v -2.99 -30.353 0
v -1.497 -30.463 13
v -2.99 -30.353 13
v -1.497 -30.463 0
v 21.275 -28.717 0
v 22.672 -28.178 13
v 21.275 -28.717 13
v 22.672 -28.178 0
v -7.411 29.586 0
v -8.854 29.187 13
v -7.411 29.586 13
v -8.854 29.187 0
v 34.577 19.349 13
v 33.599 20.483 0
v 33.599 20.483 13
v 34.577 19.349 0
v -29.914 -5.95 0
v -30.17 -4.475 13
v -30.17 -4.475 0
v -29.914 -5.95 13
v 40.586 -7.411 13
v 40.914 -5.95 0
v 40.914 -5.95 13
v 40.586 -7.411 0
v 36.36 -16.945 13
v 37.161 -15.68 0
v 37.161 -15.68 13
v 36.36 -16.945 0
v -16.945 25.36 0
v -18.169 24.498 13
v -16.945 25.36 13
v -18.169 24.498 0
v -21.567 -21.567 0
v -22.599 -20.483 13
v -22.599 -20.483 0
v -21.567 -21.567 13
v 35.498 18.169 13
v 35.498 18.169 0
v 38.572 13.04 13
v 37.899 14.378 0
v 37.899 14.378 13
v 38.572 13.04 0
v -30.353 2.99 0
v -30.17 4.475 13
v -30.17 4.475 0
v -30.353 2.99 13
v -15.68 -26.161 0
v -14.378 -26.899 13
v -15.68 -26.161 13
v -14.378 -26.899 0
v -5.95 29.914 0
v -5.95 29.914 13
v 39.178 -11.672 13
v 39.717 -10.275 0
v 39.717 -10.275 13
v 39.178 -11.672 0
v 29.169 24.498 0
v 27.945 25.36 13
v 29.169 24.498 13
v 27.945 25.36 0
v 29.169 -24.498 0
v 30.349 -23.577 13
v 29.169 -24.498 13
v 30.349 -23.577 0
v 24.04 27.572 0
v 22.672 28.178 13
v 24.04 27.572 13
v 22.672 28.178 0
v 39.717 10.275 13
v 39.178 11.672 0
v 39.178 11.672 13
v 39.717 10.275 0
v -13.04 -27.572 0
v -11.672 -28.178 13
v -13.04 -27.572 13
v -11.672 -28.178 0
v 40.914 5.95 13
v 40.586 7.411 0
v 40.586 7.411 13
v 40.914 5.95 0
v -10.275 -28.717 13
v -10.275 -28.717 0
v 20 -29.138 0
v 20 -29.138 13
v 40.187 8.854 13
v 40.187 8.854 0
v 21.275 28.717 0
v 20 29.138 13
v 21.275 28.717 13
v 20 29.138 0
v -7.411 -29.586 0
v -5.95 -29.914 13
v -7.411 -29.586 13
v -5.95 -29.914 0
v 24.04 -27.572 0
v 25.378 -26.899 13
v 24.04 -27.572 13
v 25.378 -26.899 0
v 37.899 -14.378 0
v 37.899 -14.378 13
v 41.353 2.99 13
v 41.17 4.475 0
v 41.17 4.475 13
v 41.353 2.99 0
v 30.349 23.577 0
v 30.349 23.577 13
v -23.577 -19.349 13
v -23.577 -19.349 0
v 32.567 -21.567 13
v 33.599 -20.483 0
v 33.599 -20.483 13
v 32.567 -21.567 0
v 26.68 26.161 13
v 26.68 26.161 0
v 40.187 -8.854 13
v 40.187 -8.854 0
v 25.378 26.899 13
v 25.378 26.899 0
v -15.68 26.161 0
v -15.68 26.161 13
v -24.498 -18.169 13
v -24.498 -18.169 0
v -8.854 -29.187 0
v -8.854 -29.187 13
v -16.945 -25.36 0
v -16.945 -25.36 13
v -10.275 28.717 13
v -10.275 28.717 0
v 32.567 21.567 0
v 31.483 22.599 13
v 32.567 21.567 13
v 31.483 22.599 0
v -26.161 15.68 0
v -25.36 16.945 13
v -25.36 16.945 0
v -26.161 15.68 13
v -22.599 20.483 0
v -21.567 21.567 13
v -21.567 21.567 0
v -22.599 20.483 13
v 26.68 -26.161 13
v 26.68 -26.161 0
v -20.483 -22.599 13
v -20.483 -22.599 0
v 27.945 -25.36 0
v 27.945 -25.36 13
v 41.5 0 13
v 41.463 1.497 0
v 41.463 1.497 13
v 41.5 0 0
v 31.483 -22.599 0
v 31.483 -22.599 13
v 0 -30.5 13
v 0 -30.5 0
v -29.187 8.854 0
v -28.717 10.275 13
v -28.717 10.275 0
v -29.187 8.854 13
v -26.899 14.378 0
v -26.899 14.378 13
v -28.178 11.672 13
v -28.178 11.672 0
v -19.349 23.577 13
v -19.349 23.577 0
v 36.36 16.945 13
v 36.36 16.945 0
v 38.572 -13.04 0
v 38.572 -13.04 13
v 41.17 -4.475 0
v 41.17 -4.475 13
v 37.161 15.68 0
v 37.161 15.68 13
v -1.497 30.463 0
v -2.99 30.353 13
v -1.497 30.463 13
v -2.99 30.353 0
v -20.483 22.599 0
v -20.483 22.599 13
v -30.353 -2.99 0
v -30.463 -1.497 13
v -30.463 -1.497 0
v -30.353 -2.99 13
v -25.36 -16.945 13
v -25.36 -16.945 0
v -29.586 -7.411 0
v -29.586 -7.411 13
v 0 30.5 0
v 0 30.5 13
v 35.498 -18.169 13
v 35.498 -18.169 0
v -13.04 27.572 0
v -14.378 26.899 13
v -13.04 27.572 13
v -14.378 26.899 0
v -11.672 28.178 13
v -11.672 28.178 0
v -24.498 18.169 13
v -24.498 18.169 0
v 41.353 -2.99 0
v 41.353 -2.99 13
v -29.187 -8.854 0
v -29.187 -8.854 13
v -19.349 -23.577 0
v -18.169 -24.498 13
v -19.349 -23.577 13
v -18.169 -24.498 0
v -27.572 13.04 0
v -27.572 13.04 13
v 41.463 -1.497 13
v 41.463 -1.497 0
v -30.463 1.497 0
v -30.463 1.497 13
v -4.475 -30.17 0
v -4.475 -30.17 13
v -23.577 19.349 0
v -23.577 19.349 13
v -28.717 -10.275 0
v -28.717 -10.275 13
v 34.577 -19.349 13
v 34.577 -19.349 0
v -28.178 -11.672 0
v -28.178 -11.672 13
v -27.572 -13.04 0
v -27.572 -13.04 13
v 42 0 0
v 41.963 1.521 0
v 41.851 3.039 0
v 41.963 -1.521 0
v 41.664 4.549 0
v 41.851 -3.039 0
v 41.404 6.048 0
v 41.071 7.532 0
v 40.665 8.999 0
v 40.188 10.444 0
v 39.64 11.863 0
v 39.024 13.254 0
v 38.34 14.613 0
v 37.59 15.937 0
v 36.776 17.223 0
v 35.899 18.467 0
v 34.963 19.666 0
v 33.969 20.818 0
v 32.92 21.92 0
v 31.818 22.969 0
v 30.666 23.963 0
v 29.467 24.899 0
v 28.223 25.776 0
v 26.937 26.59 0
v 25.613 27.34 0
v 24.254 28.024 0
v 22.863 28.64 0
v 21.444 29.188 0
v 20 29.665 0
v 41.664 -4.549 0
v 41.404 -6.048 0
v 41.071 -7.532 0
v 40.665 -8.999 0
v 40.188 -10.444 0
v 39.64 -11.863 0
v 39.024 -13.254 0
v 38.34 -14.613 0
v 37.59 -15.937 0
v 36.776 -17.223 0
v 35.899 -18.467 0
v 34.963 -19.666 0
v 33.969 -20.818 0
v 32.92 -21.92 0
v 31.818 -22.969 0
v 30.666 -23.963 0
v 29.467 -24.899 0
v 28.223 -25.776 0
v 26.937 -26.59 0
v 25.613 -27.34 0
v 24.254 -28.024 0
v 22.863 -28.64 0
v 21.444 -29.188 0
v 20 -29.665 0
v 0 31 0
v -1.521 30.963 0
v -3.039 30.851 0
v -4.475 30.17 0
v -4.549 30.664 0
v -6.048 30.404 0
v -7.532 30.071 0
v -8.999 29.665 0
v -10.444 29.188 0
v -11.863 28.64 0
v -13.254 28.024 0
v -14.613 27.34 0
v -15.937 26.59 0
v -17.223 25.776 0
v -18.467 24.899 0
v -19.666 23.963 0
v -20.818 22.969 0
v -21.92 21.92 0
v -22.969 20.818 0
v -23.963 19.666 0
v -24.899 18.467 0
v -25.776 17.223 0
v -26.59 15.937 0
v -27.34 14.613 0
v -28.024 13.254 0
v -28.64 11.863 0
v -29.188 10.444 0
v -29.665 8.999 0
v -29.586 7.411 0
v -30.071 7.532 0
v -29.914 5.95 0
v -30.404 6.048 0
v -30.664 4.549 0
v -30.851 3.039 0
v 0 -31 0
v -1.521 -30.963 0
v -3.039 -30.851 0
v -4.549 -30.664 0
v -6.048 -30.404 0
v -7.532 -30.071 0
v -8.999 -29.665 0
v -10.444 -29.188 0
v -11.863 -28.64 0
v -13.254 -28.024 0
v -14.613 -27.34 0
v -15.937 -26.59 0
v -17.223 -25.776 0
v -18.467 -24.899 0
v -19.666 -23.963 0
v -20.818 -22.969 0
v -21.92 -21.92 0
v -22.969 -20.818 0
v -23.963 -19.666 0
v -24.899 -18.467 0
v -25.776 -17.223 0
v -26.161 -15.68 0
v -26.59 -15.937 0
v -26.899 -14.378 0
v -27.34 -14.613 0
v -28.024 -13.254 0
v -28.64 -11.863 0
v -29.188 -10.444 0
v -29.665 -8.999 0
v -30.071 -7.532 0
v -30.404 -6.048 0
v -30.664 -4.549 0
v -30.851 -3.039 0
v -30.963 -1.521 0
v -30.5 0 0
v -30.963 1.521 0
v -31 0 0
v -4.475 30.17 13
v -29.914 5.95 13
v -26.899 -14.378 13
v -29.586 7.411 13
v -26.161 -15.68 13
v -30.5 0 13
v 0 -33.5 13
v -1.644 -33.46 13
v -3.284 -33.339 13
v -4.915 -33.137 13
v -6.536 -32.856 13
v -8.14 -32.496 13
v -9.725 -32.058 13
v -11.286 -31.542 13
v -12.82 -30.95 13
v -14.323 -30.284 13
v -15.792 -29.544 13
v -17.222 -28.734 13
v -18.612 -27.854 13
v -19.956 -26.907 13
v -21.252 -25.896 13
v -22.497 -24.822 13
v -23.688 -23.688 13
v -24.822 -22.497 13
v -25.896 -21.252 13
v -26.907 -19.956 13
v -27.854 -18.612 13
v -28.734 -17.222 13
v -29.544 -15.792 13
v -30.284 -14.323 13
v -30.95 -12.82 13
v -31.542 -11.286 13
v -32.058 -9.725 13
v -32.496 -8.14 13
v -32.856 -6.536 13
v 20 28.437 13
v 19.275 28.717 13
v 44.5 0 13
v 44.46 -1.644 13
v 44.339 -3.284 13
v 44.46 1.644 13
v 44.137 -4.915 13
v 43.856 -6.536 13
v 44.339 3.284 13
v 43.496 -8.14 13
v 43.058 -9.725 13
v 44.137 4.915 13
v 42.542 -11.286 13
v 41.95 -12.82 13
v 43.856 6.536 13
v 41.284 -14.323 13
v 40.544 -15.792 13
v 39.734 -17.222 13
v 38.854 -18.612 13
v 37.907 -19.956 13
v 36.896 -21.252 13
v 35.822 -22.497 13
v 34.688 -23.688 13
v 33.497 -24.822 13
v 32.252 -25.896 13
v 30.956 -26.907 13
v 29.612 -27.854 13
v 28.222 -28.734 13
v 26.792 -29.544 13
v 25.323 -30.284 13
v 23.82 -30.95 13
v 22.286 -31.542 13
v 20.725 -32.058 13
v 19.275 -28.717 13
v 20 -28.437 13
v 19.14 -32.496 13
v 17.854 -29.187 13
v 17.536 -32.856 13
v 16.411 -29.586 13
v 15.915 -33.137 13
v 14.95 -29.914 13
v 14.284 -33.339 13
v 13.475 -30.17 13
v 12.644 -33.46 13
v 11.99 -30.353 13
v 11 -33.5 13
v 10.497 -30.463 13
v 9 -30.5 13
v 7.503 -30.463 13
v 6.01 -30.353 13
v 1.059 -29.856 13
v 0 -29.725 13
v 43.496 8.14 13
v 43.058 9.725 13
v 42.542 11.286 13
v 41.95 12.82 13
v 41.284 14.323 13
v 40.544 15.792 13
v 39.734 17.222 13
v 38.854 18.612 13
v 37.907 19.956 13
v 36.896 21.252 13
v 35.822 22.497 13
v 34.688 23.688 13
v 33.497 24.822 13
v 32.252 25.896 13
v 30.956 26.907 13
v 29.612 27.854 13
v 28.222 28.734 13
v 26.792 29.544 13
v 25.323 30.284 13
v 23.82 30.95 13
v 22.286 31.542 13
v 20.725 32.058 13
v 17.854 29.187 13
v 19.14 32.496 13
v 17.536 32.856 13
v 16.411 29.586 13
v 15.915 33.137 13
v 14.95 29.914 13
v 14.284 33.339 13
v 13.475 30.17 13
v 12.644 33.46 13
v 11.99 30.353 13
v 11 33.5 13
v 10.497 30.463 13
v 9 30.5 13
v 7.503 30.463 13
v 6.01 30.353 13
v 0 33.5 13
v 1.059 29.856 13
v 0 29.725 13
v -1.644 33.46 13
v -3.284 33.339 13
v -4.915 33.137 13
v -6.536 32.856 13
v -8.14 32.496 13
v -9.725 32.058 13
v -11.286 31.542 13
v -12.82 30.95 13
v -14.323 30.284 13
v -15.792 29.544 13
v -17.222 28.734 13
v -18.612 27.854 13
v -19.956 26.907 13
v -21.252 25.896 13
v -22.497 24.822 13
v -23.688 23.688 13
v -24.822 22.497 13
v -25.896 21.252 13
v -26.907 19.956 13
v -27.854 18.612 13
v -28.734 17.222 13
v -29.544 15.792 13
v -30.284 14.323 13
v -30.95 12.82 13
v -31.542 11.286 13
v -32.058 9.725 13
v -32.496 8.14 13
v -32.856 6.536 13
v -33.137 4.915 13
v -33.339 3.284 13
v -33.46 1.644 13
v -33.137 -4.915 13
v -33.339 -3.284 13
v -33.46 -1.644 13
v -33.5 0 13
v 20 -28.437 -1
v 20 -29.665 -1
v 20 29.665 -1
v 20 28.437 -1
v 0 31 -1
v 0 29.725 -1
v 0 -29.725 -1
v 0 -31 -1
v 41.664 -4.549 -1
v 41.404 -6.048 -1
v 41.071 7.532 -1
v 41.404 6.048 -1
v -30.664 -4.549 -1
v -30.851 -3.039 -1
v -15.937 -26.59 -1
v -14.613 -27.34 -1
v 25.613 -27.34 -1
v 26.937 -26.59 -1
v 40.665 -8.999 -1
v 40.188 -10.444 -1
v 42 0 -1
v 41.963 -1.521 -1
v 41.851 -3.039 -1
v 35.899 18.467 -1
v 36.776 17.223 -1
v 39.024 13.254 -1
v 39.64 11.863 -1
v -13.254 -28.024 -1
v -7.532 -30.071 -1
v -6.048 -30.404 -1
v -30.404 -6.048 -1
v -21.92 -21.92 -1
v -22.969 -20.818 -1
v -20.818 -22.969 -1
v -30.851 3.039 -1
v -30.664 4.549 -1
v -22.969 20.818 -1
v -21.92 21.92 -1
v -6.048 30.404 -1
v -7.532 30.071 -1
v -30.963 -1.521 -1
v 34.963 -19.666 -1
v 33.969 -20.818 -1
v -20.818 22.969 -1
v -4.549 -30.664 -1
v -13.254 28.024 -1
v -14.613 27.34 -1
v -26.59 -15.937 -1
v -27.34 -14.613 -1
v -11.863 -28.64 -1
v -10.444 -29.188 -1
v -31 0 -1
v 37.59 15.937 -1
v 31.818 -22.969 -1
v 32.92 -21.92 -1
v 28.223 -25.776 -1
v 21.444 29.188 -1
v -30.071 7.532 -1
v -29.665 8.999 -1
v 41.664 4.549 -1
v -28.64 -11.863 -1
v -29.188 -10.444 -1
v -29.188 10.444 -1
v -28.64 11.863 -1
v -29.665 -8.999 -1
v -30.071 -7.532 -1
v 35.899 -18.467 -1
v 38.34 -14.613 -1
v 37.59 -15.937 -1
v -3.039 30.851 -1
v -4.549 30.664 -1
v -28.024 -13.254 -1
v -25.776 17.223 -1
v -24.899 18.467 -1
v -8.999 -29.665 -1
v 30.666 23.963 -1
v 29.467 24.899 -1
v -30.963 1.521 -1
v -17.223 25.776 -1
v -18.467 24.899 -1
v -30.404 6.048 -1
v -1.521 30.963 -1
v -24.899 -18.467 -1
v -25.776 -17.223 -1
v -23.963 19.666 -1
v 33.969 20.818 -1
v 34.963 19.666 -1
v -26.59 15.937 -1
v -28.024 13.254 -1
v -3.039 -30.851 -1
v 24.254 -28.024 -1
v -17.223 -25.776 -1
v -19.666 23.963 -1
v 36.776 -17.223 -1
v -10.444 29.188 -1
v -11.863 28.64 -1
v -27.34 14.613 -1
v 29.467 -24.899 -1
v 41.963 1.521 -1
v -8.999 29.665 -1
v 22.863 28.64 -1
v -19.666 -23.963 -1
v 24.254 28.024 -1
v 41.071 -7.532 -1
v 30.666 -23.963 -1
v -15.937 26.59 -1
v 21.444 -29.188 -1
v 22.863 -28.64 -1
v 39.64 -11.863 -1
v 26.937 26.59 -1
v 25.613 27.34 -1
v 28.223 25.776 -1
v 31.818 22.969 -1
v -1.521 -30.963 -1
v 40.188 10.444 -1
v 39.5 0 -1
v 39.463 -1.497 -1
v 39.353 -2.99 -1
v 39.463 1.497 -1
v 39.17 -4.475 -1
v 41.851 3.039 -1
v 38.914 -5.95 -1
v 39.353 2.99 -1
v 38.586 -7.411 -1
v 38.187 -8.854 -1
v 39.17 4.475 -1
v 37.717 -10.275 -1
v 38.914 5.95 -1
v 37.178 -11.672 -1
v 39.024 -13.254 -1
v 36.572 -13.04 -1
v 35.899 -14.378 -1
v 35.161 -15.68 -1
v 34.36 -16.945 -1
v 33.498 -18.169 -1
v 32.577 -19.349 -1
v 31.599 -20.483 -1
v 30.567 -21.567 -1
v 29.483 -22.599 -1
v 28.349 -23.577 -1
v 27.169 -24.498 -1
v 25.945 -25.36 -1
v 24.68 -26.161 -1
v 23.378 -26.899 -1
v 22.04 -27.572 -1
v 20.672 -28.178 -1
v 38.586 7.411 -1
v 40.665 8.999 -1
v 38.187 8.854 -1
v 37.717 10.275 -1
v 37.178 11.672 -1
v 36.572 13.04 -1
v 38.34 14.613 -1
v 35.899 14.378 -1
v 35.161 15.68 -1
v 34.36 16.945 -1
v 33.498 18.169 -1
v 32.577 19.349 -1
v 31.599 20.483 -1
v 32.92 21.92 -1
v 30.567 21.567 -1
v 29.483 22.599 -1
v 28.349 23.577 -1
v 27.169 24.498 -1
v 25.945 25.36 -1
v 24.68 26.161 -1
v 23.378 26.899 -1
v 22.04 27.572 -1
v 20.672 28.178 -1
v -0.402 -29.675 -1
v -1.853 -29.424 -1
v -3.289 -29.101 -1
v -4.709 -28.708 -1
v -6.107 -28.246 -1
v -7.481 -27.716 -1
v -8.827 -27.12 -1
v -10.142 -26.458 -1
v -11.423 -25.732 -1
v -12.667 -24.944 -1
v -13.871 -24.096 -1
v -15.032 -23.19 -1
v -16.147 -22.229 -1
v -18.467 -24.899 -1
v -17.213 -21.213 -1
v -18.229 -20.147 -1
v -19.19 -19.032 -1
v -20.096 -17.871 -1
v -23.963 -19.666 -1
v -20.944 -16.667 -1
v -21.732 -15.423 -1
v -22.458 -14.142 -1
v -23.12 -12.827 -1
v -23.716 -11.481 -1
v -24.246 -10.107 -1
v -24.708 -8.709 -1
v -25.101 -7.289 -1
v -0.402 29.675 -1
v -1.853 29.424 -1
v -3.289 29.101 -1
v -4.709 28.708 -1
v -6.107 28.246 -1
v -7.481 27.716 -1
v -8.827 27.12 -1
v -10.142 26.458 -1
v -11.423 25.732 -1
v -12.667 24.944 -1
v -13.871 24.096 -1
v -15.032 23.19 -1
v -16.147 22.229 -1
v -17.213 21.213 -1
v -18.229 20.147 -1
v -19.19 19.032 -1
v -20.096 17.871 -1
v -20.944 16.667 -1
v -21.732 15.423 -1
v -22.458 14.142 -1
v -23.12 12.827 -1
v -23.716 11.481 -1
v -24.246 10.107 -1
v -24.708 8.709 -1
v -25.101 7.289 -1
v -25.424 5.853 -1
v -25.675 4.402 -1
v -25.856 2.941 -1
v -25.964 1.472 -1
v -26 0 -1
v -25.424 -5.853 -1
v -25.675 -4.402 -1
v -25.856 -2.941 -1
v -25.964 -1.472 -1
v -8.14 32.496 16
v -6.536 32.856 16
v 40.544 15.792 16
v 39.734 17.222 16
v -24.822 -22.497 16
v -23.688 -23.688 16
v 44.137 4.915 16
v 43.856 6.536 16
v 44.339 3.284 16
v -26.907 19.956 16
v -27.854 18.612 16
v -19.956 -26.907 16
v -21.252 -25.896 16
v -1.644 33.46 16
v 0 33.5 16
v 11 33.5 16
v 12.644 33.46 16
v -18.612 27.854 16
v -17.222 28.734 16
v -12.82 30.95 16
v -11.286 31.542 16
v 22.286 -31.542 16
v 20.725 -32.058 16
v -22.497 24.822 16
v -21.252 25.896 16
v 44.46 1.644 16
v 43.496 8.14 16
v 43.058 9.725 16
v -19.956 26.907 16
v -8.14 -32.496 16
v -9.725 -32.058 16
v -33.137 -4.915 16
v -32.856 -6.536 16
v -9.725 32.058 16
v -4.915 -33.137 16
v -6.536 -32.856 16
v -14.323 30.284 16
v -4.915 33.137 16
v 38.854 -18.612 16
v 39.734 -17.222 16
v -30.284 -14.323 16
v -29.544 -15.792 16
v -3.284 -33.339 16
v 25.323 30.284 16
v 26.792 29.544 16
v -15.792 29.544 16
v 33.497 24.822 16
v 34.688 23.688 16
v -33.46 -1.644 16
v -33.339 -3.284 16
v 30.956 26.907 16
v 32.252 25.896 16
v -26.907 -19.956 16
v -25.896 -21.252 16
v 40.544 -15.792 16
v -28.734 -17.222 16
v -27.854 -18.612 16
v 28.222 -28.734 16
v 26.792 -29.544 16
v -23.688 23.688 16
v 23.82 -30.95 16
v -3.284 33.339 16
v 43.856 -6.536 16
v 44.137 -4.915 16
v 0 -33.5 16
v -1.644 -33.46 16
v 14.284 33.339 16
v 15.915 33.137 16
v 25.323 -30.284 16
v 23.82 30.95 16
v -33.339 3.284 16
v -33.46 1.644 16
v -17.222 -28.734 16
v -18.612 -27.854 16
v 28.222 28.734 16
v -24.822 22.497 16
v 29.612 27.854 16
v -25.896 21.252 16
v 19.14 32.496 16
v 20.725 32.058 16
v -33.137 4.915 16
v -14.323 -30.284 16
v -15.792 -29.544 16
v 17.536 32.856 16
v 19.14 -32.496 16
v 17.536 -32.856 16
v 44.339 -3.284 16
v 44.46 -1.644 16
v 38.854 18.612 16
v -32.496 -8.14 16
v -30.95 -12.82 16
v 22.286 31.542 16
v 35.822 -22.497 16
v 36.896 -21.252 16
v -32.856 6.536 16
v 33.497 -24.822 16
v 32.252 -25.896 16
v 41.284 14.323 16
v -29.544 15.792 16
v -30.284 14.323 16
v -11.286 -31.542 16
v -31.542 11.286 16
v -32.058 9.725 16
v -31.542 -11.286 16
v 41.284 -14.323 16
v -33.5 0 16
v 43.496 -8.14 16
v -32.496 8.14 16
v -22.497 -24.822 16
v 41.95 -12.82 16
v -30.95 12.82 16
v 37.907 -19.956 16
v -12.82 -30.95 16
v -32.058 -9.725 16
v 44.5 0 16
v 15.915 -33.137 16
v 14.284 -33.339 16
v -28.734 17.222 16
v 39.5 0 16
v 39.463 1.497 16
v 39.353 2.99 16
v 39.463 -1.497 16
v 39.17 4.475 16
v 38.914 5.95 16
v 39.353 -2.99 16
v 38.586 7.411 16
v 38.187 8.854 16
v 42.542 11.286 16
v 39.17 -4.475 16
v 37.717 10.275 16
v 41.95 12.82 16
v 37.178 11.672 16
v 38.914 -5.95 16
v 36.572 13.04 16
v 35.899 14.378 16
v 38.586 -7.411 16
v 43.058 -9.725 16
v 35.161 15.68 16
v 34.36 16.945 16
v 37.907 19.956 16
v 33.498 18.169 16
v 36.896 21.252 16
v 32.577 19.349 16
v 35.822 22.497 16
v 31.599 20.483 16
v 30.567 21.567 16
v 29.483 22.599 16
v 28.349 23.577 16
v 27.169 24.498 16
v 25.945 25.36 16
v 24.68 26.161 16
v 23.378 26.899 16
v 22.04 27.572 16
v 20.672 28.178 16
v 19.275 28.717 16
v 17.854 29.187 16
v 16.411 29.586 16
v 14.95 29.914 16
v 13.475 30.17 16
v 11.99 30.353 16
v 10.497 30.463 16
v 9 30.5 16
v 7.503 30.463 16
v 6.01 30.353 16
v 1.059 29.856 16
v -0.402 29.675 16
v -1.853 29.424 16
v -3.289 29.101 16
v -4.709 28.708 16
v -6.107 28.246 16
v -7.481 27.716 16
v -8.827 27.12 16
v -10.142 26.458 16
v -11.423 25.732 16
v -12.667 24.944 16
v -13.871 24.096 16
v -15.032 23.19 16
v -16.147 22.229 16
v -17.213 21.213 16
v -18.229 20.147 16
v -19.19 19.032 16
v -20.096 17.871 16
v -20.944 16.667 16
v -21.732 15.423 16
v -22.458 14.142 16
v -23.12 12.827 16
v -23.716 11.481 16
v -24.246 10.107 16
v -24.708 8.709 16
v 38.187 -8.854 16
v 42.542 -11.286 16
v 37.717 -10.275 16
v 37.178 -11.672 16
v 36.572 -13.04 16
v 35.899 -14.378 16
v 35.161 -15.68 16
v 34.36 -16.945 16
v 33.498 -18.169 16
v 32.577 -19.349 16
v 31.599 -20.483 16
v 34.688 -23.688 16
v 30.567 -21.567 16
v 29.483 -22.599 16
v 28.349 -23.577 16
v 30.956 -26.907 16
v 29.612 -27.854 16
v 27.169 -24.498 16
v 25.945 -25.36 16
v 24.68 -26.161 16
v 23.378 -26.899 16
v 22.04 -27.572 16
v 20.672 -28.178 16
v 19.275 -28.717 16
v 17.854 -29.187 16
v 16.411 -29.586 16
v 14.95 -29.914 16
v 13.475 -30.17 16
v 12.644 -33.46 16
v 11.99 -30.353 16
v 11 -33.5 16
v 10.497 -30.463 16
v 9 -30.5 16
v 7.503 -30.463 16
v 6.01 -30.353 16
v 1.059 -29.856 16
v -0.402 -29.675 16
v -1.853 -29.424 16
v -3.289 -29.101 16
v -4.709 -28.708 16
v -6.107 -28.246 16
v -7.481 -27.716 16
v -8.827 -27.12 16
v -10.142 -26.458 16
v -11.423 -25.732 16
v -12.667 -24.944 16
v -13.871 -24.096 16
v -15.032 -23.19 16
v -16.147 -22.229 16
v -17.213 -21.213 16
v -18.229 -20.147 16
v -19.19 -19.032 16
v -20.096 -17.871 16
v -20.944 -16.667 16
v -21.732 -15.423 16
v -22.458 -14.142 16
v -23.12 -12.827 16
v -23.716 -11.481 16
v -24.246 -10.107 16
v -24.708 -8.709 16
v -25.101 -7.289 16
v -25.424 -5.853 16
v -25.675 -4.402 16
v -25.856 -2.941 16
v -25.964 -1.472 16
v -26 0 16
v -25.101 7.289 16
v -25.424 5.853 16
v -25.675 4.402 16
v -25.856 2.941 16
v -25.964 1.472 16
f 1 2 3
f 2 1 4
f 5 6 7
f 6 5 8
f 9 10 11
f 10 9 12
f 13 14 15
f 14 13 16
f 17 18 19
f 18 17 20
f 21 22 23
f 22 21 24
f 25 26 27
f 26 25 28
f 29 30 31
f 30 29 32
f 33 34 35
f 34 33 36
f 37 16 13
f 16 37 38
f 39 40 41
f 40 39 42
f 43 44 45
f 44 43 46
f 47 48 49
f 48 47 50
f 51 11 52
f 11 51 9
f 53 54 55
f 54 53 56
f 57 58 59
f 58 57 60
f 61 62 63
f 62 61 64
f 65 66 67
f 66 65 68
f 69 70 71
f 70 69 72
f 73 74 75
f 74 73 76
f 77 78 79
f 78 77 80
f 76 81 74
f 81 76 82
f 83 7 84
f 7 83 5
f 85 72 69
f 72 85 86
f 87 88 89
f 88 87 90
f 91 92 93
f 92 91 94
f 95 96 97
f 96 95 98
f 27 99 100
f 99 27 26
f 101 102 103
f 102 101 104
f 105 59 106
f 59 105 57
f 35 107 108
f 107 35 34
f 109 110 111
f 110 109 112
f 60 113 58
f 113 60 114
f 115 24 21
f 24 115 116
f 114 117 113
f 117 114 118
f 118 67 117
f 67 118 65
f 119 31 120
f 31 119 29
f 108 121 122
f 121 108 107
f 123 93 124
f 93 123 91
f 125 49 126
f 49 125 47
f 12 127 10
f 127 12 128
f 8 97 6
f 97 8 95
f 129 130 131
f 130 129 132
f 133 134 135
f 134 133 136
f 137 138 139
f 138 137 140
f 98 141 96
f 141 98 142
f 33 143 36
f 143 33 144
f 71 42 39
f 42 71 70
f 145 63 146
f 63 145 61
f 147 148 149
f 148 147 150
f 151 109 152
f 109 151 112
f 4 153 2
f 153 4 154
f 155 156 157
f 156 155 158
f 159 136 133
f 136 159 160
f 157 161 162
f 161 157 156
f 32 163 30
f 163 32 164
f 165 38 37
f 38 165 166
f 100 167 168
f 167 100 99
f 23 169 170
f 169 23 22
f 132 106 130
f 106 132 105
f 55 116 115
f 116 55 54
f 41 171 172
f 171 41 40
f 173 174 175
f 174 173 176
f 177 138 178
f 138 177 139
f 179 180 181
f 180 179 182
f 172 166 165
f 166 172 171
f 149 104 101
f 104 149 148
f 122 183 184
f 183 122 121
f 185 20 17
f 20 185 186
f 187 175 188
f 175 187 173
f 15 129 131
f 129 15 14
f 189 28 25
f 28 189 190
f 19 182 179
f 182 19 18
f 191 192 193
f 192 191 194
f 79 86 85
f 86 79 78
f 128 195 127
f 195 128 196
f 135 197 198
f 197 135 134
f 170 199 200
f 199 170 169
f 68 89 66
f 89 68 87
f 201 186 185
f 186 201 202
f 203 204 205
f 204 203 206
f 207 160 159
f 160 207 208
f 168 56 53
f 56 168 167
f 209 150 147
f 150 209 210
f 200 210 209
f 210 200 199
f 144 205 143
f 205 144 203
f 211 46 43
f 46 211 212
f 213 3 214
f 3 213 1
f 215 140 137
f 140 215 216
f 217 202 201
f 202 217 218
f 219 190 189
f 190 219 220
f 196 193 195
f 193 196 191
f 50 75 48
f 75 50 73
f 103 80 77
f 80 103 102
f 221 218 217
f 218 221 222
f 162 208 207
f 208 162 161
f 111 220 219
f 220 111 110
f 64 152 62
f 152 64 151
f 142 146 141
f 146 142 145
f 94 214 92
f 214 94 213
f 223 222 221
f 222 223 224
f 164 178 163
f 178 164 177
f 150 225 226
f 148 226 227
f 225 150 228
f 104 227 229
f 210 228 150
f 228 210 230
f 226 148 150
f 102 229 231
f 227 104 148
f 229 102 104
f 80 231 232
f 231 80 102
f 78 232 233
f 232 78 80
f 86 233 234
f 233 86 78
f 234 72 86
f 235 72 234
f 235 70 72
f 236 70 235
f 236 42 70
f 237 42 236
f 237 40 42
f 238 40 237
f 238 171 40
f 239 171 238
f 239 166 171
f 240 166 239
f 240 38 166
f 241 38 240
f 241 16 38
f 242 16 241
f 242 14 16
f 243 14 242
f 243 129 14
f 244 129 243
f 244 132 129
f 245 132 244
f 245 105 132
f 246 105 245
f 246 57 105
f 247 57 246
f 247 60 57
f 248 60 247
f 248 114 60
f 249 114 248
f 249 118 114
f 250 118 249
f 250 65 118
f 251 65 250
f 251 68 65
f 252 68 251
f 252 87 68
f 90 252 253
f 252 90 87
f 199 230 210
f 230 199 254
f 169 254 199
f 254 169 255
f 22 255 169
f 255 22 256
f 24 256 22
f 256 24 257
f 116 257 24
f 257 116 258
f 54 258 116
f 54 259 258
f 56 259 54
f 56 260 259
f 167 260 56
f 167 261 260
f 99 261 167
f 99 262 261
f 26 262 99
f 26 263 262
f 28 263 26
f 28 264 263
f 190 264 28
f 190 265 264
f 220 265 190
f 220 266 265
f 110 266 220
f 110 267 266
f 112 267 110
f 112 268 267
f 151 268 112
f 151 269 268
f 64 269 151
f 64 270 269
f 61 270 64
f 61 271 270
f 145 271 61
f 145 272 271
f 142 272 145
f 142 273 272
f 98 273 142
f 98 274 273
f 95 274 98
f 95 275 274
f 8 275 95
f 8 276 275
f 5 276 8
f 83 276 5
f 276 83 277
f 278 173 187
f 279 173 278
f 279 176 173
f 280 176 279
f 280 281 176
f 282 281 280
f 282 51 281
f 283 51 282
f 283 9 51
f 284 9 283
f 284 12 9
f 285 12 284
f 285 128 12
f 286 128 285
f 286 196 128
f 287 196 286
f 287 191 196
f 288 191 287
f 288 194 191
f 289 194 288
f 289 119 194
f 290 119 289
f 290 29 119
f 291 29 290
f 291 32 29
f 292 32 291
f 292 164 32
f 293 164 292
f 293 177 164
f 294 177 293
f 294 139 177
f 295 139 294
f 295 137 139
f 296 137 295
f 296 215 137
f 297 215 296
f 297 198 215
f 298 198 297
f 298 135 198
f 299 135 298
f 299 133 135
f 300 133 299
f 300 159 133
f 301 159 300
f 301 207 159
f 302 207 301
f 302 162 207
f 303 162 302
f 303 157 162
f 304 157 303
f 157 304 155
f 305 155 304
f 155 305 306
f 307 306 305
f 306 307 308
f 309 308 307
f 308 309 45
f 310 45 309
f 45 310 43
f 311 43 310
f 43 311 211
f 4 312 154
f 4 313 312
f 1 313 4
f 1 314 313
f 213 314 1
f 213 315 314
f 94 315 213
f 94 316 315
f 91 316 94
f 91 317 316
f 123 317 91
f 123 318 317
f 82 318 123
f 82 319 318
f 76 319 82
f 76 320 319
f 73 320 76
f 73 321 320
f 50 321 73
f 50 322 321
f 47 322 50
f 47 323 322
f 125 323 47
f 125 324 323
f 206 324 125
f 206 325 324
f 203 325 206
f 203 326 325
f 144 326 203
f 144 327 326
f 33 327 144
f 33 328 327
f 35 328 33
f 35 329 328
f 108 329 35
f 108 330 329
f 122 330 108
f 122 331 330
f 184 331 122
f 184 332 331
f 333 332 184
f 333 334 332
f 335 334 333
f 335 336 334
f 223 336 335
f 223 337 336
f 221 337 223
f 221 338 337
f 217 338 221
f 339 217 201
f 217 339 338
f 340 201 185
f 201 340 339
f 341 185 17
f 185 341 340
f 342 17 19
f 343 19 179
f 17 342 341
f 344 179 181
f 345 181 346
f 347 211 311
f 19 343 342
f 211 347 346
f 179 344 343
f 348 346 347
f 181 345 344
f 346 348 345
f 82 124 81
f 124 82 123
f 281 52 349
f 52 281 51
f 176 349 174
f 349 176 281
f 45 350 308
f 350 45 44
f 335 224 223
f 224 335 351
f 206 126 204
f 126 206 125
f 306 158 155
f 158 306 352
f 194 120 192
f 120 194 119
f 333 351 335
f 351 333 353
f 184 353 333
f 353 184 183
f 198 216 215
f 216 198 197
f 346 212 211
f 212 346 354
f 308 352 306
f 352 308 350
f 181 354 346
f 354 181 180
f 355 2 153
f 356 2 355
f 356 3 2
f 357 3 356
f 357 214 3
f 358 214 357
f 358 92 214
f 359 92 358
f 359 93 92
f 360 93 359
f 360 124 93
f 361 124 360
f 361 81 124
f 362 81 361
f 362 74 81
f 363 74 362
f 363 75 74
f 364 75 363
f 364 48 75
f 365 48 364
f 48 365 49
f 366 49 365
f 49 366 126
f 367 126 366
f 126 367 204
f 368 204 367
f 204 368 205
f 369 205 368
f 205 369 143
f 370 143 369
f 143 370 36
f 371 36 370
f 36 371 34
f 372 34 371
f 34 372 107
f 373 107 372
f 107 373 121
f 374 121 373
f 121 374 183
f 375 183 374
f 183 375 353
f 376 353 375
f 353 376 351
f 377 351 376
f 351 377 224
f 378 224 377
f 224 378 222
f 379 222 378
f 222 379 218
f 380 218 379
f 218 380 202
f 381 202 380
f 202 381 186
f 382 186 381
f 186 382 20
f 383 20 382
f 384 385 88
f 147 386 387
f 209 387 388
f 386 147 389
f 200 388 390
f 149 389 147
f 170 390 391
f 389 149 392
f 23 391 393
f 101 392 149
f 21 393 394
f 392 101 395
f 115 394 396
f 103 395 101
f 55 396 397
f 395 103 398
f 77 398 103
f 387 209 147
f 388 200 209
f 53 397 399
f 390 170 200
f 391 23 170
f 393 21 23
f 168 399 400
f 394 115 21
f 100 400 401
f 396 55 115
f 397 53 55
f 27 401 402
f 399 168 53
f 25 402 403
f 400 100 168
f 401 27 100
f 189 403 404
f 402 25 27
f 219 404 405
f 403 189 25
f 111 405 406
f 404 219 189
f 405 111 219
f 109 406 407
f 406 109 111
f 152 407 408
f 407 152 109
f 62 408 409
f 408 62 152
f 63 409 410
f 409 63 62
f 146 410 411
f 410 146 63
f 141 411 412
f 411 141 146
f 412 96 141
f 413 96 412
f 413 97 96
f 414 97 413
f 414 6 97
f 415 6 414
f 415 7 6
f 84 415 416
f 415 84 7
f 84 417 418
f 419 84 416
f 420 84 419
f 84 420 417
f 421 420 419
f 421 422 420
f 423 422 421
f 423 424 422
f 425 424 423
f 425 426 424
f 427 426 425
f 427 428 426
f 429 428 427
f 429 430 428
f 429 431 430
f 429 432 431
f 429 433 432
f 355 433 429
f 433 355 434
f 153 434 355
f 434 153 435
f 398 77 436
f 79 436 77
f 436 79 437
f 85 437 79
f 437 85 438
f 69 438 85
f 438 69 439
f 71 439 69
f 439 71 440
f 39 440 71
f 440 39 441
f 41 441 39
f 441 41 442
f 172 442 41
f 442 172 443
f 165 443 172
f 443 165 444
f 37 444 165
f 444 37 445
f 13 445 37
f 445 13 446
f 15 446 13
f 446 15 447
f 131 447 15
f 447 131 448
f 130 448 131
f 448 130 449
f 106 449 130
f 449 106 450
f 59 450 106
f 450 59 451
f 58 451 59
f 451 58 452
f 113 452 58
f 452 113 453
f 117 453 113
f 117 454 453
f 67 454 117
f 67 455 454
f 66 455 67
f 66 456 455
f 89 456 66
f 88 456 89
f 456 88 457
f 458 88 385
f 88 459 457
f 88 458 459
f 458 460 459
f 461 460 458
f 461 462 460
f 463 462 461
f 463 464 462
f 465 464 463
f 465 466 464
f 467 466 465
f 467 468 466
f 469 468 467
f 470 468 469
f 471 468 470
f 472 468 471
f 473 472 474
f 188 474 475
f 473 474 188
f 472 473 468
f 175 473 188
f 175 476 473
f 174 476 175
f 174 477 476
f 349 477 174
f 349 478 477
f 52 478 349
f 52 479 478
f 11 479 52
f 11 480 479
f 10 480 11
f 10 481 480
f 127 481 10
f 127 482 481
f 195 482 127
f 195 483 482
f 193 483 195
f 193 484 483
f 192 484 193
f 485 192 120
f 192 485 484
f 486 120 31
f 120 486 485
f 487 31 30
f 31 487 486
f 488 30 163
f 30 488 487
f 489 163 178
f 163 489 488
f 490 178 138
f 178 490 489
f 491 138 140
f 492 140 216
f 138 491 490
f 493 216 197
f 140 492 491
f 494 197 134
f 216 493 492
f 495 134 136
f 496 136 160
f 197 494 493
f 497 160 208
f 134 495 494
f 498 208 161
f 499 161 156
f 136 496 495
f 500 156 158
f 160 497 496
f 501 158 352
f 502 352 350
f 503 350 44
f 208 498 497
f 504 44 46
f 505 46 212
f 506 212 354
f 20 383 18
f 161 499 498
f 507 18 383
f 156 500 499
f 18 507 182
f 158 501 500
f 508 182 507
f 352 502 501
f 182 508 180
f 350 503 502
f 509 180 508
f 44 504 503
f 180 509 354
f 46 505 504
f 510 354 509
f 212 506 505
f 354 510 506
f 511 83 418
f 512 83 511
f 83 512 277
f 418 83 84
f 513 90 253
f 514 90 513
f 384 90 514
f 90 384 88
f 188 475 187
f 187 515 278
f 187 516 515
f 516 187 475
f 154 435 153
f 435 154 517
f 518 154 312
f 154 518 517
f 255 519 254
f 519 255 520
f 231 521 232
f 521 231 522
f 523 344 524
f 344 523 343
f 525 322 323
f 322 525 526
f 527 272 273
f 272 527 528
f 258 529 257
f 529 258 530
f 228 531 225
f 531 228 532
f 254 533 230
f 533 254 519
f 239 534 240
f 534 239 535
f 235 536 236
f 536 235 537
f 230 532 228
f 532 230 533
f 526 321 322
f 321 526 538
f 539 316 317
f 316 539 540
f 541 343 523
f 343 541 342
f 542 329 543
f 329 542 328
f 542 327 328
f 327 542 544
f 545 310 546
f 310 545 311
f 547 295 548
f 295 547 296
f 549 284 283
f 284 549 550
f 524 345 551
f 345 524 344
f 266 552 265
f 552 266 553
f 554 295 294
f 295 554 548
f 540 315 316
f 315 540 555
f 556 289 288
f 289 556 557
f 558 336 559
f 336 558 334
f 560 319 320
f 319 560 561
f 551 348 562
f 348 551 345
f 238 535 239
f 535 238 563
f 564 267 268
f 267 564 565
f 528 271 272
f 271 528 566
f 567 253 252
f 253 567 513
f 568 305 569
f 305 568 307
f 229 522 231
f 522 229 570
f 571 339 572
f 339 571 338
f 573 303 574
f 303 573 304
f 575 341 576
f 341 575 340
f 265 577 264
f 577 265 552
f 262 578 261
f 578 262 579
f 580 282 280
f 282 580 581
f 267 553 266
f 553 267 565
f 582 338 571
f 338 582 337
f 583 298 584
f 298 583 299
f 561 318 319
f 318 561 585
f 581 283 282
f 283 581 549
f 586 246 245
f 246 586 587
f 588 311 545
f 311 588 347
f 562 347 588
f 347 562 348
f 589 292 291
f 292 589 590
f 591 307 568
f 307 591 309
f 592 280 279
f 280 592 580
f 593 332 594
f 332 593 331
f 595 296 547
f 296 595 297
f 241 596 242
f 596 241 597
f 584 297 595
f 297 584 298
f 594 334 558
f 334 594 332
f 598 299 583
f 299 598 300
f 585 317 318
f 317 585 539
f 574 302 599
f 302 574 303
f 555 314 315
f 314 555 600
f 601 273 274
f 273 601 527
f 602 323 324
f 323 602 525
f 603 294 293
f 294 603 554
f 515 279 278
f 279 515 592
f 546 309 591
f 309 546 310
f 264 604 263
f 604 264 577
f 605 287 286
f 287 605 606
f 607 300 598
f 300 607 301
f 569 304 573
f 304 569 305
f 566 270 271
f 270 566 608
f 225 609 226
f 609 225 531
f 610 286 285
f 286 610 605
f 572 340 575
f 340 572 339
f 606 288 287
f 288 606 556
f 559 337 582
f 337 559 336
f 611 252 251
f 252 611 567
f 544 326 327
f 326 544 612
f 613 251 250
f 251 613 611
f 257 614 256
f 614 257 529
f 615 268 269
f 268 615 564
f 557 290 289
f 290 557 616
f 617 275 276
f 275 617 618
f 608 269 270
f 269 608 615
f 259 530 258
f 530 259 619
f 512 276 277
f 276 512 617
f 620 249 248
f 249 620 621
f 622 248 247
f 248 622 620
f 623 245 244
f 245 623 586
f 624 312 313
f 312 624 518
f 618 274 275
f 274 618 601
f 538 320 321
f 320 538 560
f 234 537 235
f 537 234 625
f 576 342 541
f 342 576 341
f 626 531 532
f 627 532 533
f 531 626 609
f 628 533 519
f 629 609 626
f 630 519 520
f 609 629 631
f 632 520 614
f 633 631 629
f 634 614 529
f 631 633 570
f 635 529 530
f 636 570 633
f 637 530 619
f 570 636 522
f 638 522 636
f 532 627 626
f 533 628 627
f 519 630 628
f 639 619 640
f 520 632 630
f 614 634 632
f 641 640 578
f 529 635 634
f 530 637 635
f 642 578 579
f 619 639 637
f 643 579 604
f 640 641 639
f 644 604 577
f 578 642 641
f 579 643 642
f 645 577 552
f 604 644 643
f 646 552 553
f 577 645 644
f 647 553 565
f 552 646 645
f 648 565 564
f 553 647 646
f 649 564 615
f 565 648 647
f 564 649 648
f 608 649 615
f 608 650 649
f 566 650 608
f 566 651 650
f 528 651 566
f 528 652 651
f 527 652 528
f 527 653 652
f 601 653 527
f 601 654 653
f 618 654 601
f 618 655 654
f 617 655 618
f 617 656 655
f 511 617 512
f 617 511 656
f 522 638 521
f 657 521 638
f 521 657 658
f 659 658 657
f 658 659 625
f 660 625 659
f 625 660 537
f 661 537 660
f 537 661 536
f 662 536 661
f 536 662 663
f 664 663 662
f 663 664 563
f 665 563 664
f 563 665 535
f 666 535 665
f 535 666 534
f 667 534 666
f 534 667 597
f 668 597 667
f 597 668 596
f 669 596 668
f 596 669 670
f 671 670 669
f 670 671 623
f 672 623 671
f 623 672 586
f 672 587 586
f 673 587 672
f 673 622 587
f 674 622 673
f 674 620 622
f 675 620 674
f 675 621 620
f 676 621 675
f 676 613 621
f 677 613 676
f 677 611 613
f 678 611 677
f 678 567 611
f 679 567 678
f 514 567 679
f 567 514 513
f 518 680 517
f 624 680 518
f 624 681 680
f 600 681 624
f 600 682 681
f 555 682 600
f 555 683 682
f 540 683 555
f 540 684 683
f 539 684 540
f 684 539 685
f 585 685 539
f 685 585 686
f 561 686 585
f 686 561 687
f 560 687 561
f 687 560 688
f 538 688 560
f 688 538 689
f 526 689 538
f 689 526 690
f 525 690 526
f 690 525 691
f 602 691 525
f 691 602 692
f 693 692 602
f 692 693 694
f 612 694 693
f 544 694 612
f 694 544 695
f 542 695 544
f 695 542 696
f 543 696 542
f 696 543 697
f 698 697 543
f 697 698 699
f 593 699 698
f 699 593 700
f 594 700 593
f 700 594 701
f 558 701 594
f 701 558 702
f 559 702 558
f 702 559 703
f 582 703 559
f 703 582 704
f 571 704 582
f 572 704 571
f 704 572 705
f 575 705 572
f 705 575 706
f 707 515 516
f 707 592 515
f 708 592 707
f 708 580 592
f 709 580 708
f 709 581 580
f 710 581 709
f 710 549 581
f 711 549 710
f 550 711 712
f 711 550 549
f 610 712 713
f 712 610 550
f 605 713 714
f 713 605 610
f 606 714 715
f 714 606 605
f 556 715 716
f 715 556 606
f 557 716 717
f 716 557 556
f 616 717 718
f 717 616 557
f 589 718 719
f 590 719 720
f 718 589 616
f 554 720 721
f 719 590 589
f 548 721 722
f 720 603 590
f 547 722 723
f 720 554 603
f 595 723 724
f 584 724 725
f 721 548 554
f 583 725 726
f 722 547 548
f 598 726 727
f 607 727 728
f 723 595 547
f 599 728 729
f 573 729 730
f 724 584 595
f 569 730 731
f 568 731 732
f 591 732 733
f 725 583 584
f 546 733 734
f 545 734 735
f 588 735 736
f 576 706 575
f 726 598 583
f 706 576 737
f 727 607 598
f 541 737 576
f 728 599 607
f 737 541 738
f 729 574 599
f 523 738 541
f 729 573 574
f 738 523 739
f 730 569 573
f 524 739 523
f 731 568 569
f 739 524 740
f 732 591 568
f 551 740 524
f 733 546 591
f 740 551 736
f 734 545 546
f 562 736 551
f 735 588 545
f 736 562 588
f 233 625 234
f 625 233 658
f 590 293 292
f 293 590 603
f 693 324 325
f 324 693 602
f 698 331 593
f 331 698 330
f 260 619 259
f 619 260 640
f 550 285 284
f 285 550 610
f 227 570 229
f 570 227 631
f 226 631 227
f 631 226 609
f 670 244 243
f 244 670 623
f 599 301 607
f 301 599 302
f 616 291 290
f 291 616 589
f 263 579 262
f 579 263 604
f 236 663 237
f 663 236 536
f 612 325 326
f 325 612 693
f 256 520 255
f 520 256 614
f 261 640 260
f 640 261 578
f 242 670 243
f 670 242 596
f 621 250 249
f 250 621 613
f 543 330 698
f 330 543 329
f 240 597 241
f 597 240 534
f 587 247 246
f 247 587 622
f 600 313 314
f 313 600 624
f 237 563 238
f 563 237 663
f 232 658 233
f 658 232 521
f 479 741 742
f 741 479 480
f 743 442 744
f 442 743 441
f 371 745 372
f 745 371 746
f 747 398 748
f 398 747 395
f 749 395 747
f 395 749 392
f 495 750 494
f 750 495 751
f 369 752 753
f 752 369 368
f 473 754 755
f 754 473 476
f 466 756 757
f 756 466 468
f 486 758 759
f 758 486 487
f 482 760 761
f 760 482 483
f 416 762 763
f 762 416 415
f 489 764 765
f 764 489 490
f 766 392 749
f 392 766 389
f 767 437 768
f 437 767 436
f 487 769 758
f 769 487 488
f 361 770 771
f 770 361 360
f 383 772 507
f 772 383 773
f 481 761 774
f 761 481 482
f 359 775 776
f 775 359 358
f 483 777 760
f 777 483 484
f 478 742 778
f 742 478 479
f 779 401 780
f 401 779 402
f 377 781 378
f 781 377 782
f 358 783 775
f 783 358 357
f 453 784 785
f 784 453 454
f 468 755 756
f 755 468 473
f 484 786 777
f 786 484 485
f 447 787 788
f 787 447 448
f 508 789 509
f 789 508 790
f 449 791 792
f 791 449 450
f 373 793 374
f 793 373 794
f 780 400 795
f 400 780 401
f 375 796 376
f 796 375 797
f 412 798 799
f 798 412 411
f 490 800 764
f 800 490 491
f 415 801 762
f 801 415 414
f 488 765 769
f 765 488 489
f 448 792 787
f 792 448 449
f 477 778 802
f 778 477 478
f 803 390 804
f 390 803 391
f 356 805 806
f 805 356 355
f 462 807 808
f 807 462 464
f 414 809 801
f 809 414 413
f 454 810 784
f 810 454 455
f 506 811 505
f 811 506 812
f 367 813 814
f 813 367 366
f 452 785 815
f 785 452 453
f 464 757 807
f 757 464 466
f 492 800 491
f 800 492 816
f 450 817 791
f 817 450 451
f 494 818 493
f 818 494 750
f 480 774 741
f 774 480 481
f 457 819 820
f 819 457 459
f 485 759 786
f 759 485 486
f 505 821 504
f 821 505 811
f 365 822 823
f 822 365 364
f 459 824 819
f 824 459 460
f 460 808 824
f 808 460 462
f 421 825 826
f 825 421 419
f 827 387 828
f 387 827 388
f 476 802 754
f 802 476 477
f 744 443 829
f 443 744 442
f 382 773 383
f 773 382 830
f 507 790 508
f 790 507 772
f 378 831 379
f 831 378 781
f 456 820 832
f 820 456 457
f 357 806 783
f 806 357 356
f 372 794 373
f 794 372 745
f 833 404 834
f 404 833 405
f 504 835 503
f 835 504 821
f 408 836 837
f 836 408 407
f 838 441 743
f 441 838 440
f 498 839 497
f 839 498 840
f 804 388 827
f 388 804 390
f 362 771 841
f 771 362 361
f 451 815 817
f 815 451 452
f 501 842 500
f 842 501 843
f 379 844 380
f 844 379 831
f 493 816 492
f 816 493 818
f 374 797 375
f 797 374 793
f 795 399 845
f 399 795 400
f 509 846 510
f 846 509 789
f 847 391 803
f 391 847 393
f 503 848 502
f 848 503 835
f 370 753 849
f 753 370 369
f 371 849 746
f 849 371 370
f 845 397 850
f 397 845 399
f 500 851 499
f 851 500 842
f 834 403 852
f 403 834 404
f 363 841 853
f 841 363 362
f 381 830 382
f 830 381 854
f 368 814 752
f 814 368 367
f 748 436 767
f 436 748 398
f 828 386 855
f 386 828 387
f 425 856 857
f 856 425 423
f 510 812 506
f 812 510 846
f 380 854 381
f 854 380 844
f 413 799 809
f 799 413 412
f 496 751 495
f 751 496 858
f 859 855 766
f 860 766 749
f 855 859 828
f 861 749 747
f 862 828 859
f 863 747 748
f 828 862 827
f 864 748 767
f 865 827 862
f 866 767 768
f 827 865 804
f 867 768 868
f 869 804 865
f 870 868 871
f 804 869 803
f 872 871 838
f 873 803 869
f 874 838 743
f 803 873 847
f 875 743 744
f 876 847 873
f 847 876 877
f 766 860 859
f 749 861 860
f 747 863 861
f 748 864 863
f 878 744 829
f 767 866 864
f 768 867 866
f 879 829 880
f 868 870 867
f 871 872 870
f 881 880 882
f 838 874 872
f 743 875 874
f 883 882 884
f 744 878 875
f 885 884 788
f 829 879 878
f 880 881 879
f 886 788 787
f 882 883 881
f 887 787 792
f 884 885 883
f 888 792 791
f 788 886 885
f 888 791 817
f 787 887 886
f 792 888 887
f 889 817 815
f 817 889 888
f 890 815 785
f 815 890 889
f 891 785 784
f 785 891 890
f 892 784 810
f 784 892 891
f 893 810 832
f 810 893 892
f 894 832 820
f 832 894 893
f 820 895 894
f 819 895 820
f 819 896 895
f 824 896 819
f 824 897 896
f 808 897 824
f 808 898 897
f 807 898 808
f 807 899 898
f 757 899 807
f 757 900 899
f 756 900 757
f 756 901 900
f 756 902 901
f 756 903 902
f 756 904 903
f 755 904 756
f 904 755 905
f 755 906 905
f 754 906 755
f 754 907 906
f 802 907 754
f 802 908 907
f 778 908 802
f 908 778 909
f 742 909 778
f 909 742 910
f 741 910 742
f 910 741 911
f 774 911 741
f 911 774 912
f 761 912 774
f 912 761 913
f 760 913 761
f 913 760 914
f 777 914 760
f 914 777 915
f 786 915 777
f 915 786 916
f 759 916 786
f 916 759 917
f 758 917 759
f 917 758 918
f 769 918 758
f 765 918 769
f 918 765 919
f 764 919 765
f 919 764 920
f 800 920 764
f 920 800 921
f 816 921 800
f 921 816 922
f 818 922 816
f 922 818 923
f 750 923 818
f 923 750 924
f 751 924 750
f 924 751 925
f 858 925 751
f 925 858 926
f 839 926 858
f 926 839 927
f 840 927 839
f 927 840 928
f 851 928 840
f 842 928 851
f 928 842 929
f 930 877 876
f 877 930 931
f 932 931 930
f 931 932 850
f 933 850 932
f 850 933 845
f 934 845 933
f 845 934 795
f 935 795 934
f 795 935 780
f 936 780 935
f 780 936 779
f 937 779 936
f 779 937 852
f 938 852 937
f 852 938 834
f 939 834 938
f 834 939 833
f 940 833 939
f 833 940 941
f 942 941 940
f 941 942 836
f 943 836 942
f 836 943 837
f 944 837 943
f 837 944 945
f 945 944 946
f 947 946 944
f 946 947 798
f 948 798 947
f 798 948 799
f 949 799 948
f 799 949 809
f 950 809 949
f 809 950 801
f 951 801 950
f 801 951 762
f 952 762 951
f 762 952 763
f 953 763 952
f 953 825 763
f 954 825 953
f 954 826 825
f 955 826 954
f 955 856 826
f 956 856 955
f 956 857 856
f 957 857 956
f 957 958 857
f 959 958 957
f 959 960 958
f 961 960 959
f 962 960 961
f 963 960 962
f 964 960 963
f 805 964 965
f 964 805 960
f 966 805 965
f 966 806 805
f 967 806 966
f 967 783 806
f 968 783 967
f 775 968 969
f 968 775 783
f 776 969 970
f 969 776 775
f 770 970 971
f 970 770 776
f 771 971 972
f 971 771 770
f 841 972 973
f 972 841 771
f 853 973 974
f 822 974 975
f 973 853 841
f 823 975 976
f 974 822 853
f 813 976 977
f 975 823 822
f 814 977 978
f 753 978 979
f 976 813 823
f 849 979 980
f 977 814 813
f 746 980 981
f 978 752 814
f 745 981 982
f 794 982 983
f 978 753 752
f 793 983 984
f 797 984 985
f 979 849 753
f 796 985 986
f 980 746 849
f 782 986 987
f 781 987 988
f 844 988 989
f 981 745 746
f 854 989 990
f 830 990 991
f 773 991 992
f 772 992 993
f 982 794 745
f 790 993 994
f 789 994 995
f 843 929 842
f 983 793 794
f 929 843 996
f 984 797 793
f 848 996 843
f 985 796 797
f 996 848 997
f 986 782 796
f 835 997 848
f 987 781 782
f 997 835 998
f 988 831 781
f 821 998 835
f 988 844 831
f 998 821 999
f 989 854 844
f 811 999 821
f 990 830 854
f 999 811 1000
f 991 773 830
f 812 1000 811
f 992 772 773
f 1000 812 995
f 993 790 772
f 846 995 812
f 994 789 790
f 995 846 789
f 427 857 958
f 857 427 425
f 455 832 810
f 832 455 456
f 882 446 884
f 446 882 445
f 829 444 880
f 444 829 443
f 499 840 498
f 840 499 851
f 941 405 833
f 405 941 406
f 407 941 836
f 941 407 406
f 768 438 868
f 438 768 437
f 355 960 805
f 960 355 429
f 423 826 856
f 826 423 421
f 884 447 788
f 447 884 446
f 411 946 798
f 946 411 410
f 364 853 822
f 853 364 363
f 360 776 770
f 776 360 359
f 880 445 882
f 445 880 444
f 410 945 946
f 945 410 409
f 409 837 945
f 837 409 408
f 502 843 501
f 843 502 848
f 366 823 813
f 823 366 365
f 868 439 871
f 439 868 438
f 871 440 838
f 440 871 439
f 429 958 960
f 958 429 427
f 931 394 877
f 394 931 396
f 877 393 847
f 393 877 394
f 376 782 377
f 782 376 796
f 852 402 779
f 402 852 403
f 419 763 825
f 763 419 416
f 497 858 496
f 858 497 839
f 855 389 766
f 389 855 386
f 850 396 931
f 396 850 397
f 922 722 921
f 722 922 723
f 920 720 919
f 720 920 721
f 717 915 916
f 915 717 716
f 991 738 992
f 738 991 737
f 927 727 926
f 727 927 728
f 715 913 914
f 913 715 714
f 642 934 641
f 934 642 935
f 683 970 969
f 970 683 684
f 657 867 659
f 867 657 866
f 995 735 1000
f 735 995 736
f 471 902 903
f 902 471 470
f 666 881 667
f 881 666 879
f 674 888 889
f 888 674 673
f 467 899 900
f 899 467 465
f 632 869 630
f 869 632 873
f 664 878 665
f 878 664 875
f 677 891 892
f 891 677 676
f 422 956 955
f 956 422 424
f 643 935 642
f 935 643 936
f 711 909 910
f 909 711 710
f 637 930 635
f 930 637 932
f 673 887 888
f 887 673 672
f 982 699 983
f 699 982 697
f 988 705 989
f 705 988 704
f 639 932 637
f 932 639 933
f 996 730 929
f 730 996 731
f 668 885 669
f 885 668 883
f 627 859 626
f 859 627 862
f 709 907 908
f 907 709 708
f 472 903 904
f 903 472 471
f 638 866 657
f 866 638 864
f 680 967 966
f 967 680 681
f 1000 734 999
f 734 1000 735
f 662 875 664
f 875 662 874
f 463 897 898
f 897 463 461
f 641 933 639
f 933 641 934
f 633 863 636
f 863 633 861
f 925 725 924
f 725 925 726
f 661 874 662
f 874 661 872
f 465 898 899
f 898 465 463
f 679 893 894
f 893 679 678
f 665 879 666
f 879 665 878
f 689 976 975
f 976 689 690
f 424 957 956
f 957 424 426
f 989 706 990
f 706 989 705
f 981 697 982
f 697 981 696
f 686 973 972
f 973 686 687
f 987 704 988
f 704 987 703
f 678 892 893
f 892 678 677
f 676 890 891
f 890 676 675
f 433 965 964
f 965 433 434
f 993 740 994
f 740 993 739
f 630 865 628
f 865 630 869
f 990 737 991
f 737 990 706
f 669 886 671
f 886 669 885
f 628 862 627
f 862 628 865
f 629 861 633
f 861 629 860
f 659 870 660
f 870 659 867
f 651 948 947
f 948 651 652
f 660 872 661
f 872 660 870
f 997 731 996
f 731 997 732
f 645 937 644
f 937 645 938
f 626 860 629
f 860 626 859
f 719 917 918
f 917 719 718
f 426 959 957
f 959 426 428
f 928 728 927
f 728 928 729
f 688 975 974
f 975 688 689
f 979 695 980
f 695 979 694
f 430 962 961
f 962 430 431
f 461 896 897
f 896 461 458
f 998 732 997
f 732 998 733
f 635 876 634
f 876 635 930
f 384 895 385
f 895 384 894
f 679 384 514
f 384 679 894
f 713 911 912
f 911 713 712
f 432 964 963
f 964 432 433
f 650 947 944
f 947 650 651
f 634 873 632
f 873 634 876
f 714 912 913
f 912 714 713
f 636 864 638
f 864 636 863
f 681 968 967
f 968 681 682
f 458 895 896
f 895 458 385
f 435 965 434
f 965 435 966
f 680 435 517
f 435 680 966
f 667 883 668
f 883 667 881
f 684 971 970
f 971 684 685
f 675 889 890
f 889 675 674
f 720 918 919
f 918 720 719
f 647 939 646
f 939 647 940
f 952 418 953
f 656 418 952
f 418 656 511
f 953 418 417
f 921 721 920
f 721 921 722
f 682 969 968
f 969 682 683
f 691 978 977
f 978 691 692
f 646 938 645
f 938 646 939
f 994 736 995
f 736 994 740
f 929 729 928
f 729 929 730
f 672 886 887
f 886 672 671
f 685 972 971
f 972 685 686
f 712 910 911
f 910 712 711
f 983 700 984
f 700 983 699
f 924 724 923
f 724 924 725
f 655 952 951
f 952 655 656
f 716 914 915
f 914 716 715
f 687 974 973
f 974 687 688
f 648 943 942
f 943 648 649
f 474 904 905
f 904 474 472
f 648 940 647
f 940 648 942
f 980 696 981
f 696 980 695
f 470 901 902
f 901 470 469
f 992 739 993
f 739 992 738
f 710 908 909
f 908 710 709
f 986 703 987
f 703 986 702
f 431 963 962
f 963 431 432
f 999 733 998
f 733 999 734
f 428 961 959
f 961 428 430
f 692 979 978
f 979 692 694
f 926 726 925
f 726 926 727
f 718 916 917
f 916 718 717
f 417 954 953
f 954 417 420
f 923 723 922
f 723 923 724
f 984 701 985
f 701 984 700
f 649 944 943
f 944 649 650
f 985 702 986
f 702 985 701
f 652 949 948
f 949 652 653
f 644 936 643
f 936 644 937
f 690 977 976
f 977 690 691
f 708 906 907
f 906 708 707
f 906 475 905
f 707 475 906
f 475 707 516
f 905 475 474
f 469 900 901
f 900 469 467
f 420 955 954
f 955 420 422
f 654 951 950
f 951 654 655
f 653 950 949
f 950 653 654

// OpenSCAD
// Outer length
olength = 72;

// Outer width
owidth = 61;

// Outer depth
odepth = 13;

// Quality of spheres
$fn = 128; // [16:128]

difference() {
  union() {
    // Base that lives in the hole
    difference() {
      hull() {
        cylinder(d=owidth, h=odepth);
        translate([olength - owidth,0,0]) cylinder(d=owidth, h=odepth);
      }

      // Fully cut out some of the sides.
      translate([0,-owidth/2-1,-1]) cube([20, owidth+2, odepth+1]);
    }

    // A brim on top of the base to not fall through.
    hull() {
      translate([0,0,odepth]) cylinder(d=owidth+6, h=3);
      translate([olength - owidth, 0, odepth]) cylinder(d=owidth+6, h=3);
    }

    // Add a brim to the bottom to fix the item in place better.
    difference() {
      hull() {
        translate([0,0,-1]) cylinder(d=owidth+1, h=1);
        translate([olength-owidth,0,-1]) cylinder(d=owidth+1, h=1);
      }
      // Fully cut out some of the sides in the bottom brim.
      translate([0,-owidth/2-1,-2]) cube([20, owidth+2, odepth+1]);
    }
  }

  // Hole to cut out of the base and the brim.
  hull() {
    translate([4,0,-2]) cylinder(d=60, h=odepth+6);
    translate([9,0,-2]) cylinder(d=61, h=odepth+6);
  }
}
